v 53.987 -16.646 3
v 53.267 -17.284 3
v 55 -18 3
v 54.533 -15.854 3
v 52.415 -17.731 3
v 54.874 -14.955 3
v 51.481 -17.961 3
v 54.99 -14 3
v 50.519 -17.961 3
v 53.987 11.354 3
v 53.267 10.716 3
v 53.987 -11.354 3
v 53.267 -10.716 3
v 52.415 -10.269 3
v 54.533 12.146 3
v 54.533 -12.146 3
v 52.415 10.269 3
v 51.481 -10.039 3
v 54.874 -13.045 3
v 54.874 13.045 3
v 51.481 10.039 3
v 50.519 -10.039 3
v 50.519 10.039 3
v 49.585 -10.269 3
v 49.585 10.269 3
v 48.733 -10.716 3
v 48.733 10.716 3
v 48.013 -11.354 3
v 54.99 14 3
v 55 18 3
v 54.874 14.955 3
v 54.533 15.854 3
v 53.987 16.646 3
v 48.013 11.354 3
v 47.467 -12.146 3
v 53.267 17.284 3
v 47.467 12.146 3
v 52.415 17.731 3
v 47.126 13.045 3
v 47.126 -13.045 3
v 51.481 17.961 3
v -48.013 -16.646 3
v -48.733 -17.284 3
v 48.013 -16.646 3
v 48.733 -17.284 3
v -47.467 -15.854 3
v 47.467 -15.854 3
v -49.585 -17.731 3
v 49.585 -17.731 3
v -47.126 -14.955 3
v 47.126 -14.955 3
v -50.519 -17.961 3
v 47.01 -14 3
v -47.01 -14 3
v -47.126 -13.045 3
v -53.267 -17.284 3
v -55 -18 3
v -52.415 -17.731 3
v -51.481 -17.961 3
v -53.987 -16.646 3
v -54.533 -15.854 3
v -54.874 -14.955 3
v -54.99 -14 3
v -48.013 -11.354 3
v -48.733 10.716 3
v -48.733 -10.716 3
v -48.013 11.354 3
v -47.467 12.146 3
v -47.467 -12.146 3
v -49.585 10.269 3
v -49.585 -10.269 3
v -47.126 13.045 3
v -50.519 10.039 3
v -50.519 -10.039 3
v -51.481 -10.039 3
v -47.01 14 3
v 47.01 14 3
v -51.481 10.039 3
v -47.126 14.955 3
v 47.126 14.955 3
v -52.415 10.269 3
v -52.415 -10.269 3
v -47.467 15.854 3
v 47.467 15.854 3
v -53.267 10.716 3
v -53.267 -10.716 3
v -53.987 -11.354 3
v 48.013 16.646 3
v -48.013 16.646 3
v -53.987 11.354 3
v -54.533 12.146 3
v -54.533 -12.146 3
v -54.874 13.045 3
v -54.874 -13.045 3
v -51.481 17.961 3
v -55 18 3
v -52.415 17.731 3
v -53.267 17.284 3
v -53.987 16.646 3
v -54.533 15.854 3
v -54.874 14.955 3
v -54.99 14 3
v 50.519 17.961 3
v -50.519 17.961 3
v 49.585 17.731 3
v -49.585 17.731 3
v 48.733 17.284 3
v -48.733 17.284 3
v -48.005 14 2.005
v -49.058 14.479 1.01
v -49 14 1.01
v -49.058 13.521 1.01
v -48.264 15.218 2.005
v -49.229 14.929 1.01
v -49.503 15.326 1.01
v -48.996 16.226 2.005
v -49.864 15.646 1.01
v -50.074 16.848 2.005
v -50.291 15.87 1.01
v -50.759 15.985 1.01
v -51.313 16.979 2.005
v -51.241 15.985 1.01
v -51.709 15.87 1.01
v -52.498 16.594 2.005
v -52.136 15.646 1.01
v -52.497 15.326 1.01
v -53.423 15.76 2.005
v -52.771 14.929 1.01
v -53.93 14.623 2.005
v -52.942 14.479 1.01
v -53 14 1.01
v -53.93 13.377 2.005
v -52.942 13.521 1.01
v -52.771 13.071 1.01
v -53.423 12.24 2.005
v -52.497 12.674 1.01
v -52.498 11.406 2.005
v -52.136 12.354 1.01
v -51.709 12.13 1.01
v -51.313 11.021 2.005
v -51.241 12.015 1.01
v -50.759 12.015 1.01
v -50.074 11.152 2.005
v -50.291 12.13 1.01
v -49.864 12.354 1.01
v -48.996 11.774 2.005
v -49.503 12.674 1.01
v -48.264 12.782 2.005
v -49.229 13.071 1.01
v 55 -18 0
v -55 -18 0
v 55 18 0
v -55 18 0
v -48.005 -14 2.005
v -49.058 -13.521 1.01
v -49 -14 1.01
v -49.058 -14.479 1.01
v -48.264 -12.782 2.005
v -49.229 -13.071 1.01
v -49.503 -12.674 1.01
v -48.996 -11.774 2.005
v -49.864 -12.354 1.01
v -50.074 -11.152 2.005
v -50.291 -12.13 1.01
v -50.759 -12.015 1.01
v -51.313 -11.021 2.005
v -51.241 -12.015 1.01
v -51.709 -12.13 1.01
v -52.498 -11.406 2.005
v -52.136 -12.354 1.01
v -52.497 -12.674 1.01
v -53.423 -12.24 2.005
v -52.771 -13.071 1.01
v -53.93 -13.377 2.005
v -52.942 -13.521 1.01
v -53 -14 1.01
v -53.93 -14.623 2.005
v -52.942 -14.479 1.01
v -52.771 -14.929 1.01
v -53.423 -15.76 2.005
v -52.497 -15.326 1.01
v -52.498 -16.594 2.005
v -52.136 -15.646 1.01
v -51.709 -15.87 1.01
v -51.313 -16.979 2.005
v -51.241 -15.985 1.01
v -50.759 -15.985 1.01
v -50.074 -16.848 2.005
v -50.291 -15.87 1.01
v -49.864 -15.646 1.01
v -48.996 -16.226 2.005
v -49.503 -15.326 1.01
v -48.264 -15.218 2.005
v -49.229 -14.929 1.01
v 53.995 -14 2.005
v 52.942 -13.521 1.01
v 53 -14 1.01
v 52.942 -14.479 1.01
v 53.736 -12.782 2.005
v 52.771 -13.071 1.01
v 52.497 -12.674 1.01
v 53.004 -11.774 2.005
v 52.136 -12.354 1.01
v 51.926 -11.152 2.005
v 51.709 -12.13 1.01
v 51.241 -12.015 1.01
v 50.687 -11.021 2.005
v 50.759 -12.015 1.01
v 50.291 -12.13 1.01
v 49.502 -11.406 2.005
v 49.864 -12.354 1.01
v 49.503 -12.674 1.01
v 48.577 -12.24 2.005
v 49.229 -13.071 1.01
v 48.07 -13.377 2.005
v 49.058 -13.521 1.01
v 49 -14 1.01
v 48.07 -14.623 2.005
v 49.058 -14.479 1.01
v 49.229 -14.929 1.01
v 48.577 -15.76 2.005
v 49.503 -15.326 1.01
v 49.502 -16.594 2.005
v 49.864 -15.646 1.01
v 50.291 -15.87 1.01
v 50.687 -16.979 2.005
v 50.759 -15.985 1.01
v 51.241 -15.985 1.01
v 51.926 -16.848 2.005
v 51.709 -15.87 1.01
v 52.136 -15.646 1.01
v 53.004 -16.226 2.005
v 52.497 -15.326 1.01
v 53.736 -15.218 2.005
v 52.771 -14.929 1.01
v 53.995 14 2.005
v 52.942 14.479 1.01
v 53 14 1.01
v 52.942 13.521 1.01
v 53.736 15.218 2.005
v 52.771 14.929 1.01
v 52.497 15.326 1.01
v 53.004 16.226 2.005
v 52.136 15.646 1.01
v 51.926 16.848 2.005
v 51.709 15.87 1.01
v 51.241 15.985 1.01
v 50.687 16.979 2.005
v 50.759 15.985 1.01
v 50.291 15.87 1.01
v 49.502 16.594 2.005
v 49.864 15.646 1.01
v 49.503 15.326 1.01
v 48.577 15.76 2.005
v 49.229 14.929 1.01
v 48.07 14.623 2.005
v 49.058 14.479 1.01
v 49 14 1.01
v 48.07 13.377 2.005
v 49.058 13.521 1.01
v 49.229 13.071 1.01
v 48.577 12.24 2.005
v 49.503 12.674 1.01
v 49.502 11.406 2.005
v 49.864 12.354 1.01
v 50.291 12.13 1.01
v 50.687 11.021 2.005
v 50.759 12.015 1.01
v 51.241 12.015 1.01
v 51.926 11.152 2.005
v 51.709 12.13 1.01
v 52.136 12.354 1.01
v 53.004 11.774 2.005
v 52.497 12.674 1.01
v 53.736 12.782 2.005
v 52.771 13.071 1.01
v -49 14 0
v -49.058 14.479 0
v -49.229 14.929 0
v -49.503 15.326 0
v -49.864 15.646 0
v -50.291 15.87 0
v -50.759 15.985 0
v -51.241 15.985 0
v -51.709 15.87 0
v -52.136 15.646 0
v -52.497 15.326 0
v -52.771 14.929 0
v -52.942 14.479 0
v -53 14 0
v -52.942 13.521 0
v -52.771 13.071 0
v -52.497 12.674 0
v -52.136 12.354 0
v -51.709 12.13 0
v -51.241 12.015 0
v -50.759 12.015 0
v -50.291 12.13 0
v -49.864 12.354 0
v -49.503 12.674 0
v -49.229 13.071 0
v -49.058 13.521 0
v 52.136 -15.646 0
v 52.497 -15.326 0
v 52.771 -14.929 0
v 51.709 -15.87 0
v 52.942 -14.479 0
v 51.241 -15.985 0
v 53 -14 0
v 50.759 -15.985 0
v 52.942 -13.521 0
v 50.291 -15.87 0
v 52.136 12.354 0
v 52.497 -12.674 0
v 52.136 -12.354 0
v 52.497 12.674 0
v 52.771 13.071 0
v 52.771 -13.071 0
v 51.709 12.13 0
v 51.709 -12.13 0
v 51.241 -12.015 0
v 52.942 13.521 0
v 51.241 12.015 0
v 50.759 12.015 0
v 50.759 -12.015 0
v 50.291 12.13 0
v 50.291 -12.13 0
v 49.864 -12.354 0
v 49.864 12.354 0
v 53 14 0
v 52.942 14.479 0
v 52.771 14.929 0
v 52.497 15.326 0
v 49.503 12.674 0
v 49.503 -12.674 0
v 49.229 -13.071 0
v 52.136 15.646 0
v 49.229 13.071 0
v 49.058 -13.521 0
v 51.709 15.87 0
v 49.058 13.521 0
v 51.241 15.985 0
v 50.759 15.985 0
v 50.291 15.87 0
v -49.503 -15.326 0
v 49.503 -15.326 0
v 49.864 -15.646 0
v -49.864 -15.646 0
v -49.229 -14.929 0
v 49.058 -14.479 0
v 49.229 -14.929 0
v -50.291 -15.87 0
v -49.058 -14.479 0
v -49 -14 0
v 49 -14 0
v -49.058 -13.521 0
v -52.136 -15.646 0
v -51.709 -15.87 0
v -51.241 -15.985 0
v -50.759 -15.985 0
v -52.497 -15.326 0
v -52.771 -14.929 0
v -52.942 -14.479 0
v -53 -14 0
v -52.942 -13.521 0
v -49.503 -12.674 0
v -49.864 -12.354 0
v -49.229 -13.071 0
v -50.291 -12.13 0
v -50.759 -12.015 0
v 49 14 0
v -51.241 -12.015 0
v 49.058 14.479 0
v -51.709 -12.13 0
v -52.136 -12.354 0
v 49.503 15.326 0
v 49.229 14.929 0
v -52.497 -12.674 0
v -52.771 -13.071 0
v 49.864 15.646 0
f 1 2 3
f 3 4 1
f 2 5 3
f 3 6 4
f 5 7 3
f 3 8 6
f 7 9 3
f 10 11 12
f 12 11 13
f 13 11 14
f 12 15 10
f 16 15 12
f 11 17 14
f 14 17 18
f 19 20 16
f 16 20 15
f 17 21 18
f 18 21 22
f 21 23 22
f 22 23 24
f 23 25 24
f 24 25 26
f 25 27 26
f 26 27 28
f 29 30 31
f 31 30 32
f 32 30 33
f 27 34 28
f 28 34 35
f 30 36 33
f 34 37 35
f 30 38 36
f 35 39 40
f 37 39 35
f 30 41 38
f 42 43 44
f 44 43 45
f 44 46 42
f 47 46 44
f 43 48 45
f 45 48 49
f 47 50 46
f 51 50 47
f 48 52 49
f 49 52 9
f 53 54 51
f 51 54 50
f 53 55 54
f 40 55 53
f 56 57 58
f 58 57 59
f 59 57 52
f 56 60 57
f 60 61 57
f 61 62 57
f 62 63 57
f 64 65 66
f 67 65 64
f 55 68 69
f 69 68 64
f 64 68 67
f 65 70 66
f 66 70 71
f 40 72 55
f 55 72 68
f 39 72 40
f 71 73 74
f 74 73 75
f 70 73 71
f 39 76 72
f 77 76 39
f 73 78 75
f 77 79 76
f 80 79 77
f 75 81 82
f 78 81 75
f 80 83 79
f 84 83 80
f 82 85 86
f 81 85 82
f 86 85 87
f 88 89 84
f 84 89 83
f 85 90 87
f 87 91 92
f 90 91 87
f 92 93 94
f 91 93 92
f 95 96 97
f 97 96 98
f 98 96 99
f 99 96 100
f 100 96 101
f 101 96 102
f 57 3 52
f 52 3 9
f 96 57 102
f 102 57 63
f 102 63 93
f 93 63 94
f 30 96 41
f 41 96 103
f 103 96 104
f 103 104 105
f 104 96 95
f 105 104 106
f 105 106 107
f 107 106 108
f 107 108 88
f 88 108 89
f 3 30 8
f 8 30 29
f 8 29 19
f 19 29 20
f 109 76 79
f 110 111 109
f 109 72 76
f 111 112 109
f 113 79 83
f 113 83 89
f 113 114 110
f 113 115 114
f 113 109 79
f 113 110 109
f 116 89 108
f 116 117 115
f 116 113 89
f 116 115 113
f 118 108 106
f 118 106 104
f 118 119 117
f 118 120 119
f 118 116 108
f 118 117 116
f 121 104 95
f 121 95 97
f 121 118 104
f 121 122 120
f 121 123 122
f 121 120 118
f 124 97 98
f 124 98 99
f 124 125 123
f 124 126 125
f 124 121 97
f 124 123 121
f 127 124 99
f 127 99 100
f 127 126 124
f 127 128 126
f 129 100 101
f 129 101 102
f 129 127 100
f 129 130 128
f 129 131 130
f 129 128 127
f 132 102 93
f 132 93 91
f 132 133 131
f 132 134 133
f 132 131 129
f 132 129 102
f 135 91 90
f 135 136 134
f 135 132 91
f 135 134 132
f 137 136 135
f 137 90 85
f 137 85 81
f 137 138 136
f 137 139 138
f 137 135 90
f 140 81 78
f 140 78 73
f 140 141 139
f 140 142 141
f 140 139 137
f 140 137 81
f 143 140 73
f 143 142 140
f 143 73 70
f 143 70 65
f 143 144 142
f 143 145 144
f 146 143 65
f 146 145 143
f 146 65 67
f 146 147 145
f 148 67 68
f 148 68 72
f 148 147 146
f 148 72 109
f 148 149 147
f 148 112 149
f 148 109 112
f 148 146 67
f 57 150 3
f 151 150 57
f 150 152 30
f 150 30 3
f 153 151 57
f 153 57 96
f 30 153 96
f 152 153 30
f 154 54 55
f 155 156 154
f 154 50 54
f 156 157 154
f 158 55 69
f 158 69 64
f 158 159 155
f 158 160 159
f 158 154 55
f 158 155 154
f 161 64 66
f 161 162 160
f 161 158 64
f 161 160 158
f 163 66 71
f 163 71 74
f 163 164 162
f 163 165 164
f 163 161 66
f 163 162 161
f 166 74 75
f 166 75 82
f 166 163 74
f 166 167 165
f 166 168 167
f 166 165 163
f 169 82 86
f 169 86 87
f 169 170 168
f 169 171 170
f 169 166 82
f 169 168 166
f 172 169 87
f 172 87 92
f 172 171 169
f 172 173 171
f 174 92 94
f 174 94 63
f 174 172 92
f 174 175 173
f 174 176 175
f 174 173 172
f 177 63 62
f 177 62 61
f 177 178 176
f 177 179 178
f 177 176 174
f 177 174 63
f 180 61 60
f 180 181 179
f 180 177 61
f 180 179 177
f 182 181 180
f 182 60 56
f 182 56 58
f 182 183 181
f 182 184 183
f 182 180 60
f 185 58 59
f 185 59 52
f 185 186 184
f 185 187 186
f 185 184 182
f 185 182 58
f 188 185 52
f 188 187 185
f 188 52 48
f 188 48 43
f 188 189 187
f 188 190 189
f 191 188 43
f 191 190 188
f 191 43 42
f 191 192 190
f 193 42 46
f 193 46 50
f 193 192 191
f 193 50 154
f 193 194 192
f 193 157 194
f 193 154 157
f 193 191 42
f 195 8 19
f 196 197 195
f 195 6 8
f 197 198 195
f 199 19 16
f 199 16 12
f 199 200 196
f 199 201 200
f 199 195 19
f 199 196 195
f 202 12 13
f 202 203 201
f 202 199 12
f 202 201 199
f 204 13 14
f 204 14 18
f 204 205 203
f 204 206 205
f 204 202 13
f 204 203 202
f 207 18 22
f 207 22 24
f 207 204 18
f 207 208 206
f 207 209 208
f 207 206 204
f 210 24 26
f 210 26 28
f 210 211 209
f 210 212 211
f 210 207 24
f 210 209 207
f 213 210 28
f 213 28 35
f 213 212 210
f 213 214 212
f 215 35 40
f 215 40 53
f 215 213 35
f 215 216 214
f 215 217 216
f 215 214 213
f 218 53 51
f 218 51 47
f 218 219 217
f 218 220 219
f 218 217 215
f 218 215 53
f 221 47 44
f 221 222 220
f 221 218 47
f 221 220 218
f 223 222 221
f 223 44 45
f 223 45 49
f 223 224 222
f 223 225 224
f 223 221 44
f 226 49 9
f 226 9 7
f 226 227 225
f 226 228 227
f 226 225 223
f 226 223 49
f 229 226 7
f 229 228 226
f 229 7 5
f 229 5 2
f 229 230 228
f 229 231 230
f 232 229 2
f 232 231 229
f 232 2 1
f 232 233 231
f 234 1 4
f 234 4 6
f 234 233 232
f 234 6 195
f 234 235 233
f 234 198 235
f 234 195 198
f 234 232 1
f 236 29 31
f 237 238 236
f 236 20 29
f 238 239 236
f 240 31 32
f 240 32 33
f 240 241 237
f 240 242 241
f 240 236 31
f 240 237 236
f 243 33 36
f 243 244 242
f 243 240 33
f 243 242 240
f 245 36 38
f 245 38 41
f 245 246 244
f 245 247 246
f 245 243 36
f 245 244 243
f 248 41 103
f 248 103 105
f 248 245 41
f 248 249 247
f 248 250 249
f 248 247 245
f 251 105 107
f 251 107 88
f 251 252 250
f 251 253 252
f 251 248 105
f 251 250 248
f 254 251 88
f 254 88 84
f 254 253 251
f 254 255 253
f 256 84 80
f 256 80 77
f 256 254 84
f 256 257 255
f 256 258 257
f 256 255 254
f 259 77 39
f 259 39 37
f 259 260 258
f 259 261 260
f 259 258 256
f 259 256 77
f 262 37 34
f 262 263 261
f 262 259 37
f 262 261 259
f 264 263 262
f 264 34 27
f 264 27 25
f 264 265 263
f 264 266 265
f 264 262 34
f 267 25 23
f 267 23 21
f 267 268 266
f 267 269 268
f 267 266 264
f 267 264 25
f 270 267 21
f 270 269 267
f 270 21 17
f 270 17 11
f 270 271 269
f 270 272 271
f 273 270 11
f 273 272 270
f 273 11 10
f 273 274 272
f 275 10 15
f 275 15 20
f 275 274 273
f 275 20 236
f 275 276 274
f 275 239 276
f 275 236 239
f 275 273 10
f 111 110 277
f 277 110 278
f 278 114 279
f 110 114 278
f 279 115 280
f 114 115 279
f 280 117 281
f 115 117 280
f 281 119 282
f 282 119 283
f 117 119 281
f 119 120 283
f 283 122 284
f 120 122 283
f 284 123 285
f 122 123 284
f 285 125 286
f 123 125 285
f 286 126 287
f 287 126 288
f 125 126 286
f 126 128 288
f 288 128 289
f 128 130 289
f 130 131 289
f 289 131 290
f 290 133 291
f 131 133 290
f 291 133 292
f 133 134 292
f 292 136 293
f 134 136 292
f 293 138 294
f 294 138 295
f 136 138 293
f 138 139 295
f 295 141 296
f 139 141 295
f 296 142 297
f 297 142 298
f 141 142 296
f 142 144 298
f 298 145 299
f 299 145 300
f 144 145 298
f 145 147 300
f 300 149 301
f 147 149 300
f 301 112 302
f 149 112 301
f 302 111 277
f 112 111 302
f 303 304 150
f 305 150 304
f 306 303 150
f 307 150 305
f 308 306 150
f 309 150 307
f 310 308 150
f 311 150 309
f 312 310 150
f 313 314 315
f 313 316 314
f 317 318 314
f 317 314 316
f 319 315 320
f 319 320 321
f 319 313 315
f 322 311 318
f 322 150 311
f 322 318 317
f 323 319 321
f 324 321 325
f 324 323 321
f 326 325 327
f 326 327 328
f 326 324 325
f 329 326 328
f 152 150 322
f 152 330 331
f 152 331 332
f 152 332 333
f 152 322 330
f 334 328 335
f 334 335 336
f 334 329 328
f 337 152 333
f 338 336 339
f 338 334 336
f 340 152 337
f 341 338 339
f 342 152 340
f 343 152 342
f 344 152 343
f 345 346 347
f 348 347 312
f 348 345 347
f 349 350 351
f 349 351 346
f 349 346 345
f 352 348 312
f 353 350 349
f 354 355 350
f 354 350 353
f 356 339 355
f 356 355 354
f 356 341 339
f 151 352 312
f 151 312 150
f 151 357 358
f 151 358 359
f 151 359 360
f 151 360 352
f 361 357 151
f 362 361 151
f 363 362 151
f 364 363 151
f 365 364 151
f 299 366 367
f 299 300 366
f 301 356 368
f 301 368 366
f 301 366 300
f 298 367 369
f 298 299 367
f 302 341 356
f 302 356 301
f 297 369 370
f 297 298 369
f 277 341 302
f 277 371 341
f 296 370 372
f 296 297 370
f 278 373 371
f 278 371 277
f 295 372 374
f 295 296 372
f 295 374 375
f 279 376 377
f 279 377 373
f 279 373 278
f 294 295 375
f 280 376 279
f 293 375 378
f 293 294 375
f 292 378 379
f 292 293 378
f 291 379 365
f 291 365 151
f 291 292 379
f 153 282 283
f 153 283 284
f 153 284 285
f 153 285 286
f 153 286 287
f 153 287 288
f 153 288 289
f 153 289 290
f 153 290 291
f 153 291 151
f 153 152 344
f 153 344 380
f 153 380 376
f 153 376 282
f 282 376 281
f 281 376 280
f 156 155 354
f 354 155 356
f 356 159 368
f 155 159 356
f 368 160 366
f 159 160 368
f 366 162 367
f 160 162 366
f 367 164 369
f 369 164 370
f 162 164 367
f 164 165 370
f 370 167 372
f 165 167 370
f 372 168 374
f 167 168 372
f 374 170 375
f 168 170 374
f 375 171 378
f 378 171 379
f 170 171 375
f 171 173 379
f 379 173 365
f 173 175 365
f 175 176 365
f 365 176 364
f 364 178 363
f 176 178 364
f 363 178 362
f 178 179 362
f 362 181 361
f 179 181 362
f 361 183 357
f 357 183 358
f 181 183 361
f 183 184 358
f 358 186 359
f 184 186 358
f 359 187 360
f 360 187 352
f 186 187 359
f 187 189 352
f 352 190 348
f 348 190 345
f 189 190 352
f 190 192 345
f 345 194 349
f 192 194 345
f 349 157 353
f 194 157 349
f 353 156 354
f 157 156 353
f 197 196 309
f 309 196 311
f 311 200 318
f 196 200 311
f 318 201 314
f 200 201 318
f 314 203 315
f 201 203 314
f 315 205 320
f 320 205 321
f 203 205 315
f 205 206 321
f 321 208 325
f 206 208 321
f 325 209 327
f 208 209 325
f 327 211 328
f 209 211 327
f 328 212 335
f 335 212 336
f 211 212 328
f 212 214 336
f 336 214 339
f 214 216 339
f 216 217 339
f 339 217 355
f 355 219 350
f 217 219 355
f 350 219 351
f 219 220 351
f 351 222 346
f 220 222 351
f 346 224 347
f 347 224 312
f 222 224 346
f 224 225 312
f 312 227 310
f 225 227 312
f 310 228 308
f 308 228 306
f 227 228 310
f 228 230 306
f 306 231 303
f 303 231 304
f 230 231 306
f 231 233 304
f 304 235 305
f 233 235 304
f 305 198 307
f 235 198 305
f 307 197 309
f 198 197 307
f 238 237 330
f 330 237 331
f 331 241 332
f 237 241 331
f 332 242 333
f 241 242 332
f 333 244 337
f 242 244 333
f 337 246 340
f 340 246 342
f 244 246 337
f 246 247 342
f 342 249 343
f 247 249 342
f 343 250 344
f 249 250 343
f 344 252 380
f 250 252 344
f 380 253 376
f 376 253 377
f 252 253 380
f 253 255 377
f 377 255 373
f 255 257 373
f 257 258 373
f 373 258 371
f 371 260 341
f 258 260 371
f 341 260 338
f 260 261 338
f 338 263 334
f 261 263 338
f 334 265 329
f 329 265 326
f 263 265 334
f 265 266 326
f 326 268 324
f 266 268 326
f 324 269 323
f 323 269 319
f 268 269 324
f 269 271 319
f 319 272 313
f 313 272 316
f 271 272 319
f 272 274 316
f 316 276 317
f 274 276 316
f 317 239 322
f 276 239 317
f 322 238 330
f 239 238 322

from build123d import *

# Parameters (mm, degrees)
SKETCH_W     = 110
SKETCH_H     = 36
PAD_DEPTH    = 3
SKETCH002_R  = 2
POCKET_DEPTH = 3
CHAMFER_SIZE = 1.99


with BuildPart() as part:
    # Sketch → Pad (new body)
    with BuildSketch(Plane.XY):
        Rectangle(SKETCH_W, SKETCH_H)
    extrude(amount=PAD_DEPTH)

    # Sketch002 (on Face6 of Pad) → Pocket (cut)
    with BuildSketch(Plane.XY.offset(3)):
        with Locations((-51, 14)):
            Circle(SKETCH002_R)
        with Locations((-51, -14)):
            Circle(SKETCH002_R)
        with Locations((51, -14)):
            Circle(SKETCH002_R)
        with Locations((51, 14)):
            Circle(SKETCH002_R)
    extrude(amount=-POCKET_DEPTH, mode=Mode.SUBTRACT)

    # Chamfer
    chamfer_edges = [part.edges().sort_by_distance(p)[0] for p in [
        (-53, 14, 3),
        (-53, -14, 3),
        (49, -14, 3),
        (49, 14, 3),
    ]]
    chamfer(chamfer_edges, length=CHAMFER_SIZE)


solid = part.part
